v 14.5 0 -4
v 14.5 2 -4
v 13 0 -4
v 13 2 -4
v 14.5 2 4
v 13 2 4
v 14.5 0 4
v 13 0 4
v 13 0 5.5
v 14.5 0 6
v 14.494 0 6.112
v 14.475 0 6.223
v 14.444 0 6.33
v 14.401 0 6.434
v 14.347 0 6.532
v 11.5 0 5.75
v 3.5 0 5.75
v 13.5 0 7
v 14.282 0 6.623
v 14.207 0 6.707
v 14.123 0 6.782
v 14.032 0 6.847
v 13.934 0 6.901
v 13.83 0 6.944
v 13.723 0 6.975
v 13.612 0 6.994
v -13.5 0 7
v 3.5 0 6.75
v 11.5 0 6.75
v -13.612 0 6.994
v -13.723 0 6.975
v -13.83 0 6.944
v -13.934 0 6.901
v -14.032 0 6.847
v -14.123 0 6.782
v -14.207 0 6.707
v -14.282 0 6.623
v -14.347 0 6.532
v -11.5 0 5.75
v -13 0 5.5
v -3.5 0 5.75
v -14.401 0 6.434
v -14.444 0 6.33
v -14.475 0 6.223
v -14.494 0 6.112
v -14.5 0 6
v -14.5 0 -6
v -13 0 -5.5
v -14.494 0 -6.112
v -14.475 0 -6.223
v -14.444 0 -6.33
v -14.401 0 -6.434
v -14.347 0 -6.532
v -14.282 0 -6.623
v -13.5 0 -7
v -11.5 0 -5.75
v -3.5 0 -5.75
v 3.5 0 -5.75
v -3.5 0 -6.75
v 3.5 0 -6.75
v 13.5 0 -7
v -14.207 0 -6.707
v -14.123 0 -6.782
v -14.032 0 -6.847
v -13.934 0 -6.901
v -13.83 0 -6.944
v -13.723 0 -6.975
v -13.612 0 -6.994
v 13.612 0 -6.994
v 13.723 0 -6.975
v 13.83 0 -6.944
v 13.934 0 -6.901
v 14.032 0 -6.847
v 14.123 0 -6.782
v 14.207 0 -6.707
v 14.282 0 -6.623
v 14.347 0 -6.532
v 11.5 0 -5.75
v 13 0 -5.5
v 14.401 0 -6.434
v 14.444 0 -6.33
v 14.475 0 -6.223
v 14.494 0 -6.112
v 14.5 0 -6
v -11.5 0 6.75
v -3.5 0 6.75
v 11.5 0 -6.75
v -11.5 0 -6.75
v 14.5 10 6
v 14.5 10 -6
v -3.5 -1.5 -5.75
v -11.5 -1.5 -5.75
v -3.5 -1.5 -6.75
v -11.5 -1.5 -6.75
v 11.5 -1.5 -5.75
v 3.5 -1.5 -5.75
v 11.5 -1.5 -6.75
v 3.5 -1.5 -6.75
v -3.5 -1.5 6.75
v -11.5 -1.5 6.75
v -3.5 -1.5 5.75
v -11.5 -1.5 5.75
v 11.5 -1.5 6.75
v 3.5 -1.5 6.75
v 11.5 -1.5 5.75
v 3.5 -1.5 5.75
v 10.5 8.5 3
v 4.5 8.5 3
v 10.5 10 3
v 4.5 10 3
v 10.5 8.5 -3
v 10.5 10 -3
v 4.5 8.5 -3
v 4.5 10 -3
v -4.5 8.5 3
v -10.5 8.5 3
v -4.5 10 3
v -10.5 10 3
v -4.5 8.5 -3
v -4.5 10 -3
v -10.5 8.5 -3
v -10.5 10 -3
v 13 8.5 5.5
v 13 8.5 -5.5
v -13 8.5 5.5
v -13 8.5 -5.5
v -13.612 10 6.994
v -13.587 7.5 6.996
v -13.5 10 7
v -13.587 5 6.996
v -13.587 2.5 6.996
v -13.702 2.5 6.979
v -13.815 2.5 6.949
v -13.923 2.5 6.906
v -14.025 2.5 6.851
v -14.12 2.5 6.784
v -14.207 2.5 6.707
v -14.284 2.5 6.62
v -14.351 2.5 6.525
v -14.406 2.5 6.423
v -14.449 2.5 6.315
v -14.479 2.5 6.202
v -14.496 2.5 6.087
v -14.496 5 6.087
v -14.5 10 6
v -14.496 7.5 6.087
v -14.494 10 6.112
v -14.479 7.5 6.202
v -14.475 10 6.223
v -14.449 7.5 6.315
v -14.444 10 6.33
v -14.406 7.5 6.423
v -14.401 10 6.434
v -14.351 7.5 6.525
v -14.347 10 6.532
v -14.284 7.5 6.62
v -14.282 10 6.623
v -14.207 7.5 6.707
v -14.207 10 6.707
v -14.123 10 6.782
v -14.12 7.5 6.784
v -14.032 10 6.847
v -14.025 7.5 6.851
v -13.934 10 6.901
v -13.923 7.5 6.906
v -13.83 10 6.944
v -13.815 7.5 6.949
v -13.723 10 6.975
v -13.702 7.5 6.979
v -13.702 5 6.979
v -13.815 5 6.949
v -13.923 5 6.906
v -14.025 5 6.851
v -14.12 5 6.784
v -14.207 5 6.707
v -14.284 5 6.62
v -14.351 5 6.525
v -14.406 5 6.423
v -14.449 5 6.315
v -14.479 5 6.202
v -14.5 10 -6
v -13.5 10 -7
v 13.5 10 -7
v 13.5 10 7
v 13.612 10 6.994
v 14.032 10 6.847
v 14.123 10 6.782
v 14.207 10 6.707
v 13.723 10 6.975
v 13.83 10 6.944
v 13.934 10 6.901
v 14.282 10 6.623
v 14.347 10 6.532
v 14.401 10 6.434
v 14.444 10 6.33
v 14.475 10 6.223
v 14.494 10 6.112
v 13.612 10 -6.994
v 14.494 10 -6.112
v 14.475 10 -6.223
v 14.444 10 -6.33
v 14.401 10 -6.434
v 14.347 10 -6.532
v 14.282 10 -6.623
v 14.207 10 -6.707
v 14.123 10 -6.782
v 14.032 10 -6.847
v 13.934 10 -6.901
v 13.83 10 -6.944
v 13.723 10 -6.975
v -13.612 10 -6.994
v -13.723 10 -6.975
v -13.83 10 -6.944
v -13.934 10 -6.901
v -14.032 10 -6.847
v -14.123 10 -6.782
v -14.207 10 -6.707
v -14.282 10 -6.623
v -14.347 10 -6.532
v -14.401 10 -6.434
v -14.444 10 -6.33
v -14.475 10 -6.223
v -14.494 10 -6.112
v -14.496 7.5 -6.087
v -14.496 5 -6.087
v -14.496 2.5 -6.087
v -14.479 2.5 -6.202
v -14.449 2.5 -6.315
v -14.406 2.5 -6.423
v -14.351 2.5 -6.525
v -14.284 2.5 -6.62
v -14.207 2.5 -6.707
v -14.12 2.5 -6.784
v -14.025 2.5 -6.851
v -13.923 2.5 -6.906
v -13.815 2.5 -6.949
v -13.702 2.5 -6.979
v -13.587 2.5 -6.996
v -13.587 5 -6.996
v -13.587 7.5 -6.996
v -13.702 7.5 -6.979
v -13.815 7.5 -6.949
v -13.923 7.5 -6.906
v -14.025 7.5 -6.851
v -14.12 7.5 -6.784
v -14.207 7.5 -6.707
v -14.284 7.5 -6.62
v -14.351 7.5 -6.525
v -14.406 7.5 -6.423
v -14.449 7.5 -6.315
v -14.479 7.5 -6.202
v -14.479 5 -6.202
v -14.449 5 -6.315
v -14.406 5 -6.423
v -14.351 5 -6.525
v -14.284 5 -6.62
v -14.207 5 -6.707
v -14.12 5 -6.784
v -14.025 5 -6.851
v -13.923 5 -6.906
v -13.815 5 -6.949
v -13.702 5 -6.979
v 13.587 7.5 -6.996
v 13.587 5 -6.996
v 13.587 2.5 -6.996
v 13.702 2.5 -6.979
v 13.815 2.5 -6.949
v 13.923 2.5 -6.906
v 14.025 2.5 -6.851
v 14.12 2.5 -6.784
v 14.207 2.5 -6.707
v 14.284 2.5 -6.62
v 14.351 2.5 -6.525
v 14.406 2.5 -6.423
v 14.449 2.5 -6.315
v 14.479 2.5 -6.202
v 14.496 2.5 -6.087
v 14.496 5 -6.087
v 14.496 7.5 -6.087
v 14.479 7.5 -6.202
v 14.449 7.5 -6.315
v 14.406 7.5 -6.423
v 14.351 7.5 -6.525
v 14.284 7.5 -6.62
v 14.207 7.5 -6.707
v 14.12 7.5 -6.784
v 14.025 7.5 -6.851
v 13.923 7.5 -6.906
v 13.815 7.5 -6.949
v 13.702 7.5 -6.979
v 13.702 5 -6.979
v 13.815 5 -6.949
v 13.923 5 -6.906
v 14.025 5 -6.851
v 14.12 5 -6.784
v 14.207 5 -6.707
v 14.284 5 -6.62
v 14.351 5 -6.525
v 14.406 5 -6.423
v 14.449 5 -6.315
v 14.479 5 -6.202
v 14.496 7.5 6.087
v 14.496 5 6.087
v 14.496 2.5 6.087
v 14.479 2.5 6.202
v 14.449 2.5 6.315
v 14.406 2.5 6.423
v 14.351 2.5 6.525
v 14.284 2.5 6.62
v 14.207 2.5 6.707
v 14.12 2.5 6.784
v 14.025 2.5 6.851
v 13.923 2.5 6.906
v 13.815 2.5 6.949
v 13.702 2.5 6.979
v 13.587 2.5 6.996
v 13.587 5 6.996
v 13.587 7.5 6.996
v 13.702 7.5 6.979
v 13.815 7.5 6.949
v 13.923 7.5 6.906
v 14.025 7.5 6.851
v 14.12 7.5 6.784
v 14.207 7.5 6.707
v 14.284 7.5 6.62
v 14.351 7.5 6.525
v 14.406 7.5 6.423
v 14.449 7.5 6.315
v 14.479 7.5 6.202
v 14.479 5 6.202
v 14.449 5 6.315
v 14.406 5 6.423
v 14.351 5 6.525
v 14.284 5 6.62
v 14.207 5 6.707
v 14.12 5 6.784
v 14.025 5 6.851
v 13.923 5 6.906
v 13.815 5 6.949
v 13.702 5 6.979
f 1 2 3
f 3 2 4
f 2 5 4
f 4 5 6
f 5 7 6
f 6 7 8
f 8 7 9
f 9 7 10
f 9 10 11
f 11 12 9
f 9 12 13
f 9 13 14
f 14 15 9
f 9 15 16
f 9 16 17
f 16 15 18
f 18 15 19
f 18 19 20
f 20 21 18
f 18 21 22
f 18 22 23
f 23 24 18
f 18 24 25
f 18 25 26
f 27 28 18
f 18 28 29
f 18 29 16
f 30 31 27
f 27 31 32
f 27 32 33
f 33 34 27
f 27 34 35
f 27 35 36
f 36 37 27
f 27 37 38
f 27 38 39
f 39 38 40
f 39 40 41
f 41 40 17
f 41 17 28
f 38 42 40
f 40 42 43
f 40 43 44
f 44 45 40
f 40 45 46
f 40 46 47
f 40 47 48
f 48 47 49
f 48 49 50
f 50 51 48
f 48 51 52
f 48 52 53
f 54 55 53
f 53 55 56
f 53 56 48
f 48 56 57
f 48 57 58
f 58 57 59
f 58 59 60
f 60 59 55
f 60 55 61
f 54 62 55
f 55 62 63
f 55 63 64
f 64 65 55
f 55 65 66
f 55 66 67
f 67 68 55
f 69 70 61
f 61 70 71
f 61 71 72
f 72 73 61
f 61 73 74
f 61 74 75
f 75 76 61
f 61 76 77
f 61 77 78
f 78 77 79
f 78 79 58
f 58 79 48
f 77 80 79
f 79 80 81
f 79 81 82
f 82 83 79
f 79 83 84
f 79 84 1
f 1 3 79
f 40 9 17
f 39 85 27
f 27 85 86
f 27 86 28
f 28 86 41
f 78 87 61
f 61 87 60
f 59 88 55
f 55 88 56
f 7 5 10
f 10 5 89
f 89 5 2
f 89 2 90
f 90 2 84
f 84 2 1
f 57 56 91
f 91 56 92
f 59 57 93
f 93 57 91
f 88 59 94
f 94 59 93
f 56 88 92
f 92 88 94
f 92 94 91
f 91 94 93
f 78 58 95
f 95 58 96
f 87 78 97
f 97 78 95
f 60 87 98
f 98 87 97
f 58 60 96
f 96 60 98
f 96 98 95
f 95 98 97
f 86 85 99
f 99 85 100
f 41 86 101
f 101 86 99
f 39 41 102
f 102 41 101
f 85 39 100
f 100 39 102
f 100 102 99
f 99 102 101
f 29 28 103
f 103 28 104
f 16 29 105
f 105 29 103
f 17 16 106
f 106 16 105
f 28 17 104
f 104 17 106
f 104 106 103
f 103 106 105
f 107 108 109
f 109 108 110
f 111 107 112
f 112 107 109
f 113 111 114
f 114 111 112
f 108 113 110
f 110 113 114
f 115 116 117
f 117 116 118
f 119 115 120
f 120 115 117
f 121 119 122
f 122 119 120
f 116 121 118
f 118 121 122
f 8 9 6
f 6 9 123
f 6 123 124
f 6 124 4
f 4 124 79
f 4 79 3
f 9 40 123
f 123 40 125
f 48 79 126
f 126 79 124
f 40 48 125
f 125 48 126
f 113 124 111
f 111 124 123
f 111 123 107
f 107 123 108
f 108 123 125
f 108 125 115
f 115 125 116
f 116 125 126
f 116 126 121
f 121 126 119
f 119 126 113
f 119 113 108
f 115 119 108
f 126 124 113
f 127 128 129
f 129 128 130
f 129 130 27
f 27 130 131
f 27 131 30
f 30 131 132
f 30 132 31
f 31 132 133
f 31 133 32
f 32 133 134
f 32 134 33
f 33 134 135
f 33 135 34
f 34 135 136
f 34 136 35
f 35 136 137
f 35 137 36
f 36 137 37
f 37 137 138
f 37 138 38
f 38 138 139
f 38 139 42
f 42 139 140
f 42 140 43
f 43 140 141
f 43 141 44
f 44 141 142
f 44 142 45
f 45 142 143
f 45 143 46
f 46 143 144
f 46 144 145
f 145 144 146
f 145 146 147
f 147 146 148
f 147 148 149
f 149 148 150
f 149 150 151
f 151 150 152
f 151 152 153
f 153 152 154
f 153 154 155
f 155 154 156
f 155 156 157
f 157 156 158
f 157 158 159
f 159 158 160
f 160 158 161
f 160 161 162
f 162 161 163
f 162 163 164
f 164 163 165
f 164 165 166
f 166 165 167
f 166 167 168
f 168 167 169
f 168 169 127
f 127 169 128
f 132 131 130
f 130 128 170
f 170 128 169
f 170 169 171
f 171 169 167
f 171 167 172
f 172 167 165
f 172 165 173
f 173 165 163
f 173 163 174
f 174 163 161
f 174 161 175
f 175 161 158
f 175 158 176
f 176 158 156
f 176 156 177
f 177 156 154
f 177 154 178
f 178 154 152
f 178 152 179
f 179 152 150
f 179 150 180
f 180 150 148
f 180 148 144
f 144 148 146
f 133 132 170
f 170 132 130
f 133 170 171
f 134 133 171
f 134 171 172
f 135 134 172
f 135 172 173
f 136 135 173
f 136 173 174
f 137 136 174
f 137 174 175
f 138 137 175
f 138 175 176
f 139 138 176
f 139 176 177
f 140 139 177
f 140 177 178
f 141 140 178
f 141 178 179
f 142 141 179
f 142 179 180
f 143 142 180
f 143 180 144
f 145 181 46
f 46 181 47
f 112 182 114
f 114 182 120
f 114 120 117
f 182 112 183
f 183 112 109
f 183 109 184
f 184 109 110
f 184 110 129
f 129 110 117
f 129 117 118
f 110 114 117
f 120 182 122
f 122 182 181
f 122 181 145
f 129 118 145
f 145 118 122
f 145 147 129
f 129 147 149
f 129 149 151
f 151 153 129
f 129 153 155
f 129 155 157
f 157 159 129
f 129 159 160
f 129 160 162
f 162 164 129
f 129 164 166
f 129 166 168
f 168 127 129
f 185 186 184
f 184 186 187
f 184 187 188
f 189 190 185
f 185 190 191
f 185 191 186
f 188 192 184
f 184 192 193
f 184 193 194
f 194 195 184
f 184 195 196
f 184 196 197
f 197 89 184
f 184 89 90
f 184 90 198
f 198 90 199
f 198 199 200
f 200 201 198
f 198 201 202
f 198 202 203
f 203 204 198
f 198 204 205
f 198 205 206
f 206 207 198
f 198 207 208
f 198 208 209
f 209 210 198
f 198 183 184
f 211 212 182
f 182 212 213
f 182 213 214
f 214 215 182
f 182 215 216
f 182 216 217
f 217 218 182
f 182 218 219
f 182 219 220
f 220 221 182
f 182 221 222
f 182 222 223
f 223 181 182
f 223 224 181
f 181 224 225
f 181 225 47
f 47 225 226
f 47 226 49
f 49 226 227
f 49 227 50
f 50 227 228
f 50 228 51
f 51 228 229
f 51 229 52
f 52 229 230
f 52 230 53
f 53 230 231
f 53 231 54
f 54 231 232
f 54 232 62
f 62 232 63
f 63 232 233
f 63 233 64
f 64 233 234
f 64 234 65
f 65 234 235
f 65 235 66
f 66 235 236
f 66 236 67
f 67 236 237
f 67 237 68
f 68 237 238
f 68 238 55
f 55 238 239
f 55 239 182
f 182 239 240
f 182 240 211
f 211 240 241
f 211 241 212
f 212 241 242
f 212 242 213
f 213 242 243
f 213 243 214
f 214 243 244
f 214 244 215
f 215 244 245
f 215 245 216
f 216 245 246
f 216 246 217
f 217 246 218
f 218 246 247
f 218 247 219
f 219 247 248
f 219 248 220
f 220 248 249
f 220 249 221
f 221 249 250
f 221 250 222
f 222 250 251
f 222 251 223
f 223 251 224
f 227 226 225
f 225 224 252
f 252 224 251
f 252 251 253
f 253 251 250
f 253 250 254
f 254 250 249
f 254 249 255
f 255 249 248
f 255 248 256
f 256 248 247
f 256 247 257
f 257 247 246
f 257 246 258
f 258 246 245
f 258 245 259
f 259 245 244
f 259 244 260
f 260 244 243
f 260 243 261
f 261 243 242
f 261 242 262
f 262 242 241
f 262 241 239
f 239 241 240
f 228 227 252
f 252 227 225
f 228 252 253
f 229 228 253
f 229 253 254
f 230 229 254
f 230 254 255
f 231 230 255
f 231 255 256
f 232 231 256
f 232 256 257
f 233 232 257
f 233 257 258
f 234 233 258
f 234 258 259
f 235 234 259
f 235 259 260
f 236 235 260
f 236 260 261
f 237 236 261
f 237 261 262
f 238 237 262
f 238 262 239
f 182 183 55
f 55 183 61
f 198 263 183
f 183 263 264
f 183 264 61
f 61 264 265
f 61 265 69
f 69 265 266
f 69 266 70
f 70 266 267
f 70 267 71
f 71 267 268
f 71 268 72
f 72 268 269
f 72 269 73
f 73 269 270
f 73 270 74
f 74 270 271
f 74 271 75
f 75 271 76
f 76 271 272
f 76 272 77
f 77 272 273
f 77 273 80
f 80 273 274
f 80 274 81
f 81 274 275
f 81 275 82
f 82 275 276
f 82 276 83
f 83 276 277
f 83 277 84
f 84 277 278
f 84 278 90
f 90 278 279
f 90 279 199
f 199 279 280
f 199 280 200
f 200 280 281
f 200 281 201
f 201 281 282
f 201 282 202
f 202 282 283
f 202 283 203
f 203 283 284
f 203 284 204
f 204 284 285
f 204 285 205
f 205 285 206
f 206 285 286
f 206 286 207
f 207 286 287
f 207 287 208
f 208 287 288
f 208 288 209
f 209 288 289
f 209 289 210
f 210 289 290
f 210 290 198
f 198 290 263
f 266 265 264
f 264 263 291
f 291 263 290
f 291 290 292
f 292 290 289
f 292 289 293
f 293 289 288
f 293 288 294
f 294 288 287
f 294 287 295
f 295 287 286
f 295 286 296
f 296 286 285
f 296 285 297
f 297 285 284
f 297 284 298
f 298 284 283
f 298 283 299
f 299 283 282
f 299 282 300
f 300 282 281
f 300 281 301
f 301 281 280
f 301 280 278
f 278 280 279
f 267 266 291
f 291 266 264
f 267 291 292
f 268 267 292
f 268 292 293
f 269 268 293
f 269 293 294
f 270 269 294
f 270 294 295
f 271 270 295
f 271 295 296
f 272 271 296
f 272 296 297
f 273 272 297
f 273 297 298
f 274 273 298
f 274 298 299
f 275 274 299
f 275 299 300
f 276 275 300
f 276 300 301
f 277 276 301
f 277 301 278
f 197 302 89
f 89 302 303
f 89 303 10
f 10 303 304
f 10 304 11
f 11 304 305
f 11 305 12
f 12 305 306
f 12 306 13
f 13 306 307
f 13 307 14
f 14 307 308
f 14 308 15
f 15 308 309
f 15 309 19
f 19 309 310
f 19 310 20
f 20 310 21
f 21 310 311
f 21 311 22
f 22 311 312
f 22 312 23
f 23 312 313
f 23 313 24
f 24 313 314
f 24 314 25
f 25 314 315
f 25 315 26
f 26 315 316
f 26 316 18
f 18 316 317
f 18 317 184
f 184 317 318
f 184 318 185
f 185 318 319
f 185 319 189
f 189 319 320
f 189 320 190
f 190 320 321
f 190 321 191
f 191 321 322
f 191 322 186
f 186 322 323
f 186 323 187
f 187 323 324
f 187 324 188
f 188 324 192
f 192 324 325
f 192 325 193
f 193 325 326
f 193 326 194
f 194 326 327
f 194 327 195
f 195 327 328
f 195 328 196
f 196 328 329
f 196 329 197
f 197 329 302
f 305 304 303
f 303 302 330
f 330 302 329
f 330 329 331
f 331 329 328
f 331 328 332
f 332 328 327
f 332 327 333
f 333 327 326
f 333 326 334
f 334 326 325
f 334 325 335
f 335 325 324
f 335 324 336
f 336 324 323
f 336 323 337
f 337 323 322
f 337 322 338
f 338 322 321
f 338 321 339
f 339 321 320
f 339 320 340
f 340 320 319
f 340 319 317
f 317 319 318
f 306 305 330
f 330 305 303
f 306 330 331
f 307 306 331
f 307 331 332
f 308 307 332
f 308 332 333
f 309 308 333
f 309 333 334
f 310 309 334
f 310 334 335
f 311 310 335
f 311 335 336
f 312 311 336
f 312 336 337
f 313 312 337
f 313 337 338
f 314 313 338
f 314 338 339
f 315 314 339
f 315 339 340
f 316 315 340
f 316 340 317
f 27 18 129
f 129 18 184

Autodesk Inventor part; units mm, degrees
ref_plane "YZ Plane" through (0, 0, 0) normal (1, 0, 0) x (0, 1, 0)
ref_plane "XZ Plane" through (0, 0, 0) normal (0, 1, 0) x (-1, 0, 0)
ref_plane "XY Plane" through (0, 0, 0) normal (0, 0, 1) x (1, 0, 0)
sketch "Sketch1" plane through (0, 0, 0) normal (0, 1, 0) x (-1, 0, 0)
  line L0 (14.5, 7) -> (-14.5, 7)
  line L1 (-14.5, 7) -> (-14.5, -7)
  line L2 (-14.5, -7) -> (14.5, -7)
  line L3 (14.5, -7) -> (14.5, 7)
  point P0 (0, 0)
  dimension "d0" = 14
  dimension "d1" = 29
  dimension "d2" = 14.5
  dimension "d3" = 7
extrude "Extrusion1" add sketch "Sketch1" along normal blind 10
fillet "Fillet1" radius 1 4 edges at (14.5, 5, 7) (14.5, 5, -7) (-14.5, 5, -7) (-14.5, 5, 7)
shell "Shell1" thickness 1.5 removed faces 1 at (4.5, 0, 2.3333)
sketch "Sketch3" plane through (0, 10, 0) normal (0, 1, 0) x (1, 0, 0)
  line L0 (-10.5, -3) -> (-4.5, -3)
  line L1 (-4.5, -3) -> (-4.5, 3)
  line L2 (-4.5, 3) -> (-10.5, 3)
  line L3 (-10.5, 3) -> (-10.5, -3)
  line L4 (4.5, -3) -> (10.5, -3)
  line L5 (10.5, -3) -> (10.5, 3)
  line L6 (10.5, 3) -> (4.5, 3)
  line L7 (4.5, 3) -> (4.5, -3)
  line L8 (-13.5, -7) -> (13.5, -7) projected
  line L9 (-14.5, 6) -> (-14.5, -6) projected
  line L10 (14.5, -6) -> (14.5, 6) projected
  point P0 (0, 0)
  dimension "d14" = 6
  dimension "d15" = 6
  dimension "d16" = 4
  dimension "d17" = 4
  dimension "d18" = 4
  dimension "d19" = 6
extrude "Extrusion3" cut sketch "Sketch3" against normal through all
sketch "Sketch4" plane through (0, 0, 0) normal (0, -1, 0) x (1, 0, 0)
  line L0 (11.5, 6.75) -> (3.5, 6.75)
  line L1 (3.5, 6.75) -> (3.5, 5.75)
  line L2 (3.5, 5.75) -> (11.5, 5.75)
  line L3 (11.5, 5.75) -> (11.5, 6.75)
  line L4 (-3.5, 6.75) -> (-11.5, 6.75)
  line L5 (-11.5, 6.75) -> (-11.5, 5.75)
  line L6 (-11.5, 5.75) -> (-3.5, 5.75)
  line L7 (-3.5, 5.75) -> (-3.5, 6.75)
  line L8 (11.5, -5.75) -> (3.5, -5.75)
  line L9 (3.5, -5.75) -> (3.5, -6.75)
  line L10 (3.5, -6.75) -> (11.5, -6.75)
  line L11 (11.5, -6.75) -> (11.5, -5.75)
  line L12 (-3.5, -5.75) -> (-11.5, -5.75)
  line L13 (-11.5, -5.75) -> (-11.5, -6.75)
  line L14 (-11.5, -6.75) -> (-3.5, -6.75)
  line L15 (-3.5, -6.75) -> (-3.5, -5.75)
  line L16 (14.5, 6) -> (14.5, -6) projected
  line L17 (-14.5, -6) -> (-14.5, 6) projected
  line L18 (-13, 5.5) -> (13, 5.5) projected
  line L19 (13.5, -7) -> (-13.5, -7) projected
  point P0 (0, 0)
  dimension "d22" = 3
  dimension "d23" = 3
  dimension "d24" = 1
  dimension "d25" = 8
  dimension "d26" = 1
  dimension "d27" = 8
  dimension "d28" = 0.25
  dimension "d29" = 0.25
extrude "Extrusion4" add sketch "Sketch4" along normal blind 1.5
sketch "Sketch5" plane through (14.5, 0, 6) normal (1, 0, 0) x (0, 0, -1)
  line L0 (0, 0) -> (12, 0) projected
  line L1 (2, 2) -> (10, 2)
  line L2 (10, 2) -> (10, 0)
  line L3 (10, 0) -> (2, 0)
  line L4 (2, 0) -> (2, 2)
  line L5 (0, 0) -> (0, 10) projected
  point P0 (6, 0)
  point P1 (2, 0)
  dimension "d32" = 8
  dimension "d33" = 2
  dimension "d34" = 2
extrude "Extrusion5" cut sketch "Sketch5" against normal blind 1.5
properties part number "Keyboard_Base"
